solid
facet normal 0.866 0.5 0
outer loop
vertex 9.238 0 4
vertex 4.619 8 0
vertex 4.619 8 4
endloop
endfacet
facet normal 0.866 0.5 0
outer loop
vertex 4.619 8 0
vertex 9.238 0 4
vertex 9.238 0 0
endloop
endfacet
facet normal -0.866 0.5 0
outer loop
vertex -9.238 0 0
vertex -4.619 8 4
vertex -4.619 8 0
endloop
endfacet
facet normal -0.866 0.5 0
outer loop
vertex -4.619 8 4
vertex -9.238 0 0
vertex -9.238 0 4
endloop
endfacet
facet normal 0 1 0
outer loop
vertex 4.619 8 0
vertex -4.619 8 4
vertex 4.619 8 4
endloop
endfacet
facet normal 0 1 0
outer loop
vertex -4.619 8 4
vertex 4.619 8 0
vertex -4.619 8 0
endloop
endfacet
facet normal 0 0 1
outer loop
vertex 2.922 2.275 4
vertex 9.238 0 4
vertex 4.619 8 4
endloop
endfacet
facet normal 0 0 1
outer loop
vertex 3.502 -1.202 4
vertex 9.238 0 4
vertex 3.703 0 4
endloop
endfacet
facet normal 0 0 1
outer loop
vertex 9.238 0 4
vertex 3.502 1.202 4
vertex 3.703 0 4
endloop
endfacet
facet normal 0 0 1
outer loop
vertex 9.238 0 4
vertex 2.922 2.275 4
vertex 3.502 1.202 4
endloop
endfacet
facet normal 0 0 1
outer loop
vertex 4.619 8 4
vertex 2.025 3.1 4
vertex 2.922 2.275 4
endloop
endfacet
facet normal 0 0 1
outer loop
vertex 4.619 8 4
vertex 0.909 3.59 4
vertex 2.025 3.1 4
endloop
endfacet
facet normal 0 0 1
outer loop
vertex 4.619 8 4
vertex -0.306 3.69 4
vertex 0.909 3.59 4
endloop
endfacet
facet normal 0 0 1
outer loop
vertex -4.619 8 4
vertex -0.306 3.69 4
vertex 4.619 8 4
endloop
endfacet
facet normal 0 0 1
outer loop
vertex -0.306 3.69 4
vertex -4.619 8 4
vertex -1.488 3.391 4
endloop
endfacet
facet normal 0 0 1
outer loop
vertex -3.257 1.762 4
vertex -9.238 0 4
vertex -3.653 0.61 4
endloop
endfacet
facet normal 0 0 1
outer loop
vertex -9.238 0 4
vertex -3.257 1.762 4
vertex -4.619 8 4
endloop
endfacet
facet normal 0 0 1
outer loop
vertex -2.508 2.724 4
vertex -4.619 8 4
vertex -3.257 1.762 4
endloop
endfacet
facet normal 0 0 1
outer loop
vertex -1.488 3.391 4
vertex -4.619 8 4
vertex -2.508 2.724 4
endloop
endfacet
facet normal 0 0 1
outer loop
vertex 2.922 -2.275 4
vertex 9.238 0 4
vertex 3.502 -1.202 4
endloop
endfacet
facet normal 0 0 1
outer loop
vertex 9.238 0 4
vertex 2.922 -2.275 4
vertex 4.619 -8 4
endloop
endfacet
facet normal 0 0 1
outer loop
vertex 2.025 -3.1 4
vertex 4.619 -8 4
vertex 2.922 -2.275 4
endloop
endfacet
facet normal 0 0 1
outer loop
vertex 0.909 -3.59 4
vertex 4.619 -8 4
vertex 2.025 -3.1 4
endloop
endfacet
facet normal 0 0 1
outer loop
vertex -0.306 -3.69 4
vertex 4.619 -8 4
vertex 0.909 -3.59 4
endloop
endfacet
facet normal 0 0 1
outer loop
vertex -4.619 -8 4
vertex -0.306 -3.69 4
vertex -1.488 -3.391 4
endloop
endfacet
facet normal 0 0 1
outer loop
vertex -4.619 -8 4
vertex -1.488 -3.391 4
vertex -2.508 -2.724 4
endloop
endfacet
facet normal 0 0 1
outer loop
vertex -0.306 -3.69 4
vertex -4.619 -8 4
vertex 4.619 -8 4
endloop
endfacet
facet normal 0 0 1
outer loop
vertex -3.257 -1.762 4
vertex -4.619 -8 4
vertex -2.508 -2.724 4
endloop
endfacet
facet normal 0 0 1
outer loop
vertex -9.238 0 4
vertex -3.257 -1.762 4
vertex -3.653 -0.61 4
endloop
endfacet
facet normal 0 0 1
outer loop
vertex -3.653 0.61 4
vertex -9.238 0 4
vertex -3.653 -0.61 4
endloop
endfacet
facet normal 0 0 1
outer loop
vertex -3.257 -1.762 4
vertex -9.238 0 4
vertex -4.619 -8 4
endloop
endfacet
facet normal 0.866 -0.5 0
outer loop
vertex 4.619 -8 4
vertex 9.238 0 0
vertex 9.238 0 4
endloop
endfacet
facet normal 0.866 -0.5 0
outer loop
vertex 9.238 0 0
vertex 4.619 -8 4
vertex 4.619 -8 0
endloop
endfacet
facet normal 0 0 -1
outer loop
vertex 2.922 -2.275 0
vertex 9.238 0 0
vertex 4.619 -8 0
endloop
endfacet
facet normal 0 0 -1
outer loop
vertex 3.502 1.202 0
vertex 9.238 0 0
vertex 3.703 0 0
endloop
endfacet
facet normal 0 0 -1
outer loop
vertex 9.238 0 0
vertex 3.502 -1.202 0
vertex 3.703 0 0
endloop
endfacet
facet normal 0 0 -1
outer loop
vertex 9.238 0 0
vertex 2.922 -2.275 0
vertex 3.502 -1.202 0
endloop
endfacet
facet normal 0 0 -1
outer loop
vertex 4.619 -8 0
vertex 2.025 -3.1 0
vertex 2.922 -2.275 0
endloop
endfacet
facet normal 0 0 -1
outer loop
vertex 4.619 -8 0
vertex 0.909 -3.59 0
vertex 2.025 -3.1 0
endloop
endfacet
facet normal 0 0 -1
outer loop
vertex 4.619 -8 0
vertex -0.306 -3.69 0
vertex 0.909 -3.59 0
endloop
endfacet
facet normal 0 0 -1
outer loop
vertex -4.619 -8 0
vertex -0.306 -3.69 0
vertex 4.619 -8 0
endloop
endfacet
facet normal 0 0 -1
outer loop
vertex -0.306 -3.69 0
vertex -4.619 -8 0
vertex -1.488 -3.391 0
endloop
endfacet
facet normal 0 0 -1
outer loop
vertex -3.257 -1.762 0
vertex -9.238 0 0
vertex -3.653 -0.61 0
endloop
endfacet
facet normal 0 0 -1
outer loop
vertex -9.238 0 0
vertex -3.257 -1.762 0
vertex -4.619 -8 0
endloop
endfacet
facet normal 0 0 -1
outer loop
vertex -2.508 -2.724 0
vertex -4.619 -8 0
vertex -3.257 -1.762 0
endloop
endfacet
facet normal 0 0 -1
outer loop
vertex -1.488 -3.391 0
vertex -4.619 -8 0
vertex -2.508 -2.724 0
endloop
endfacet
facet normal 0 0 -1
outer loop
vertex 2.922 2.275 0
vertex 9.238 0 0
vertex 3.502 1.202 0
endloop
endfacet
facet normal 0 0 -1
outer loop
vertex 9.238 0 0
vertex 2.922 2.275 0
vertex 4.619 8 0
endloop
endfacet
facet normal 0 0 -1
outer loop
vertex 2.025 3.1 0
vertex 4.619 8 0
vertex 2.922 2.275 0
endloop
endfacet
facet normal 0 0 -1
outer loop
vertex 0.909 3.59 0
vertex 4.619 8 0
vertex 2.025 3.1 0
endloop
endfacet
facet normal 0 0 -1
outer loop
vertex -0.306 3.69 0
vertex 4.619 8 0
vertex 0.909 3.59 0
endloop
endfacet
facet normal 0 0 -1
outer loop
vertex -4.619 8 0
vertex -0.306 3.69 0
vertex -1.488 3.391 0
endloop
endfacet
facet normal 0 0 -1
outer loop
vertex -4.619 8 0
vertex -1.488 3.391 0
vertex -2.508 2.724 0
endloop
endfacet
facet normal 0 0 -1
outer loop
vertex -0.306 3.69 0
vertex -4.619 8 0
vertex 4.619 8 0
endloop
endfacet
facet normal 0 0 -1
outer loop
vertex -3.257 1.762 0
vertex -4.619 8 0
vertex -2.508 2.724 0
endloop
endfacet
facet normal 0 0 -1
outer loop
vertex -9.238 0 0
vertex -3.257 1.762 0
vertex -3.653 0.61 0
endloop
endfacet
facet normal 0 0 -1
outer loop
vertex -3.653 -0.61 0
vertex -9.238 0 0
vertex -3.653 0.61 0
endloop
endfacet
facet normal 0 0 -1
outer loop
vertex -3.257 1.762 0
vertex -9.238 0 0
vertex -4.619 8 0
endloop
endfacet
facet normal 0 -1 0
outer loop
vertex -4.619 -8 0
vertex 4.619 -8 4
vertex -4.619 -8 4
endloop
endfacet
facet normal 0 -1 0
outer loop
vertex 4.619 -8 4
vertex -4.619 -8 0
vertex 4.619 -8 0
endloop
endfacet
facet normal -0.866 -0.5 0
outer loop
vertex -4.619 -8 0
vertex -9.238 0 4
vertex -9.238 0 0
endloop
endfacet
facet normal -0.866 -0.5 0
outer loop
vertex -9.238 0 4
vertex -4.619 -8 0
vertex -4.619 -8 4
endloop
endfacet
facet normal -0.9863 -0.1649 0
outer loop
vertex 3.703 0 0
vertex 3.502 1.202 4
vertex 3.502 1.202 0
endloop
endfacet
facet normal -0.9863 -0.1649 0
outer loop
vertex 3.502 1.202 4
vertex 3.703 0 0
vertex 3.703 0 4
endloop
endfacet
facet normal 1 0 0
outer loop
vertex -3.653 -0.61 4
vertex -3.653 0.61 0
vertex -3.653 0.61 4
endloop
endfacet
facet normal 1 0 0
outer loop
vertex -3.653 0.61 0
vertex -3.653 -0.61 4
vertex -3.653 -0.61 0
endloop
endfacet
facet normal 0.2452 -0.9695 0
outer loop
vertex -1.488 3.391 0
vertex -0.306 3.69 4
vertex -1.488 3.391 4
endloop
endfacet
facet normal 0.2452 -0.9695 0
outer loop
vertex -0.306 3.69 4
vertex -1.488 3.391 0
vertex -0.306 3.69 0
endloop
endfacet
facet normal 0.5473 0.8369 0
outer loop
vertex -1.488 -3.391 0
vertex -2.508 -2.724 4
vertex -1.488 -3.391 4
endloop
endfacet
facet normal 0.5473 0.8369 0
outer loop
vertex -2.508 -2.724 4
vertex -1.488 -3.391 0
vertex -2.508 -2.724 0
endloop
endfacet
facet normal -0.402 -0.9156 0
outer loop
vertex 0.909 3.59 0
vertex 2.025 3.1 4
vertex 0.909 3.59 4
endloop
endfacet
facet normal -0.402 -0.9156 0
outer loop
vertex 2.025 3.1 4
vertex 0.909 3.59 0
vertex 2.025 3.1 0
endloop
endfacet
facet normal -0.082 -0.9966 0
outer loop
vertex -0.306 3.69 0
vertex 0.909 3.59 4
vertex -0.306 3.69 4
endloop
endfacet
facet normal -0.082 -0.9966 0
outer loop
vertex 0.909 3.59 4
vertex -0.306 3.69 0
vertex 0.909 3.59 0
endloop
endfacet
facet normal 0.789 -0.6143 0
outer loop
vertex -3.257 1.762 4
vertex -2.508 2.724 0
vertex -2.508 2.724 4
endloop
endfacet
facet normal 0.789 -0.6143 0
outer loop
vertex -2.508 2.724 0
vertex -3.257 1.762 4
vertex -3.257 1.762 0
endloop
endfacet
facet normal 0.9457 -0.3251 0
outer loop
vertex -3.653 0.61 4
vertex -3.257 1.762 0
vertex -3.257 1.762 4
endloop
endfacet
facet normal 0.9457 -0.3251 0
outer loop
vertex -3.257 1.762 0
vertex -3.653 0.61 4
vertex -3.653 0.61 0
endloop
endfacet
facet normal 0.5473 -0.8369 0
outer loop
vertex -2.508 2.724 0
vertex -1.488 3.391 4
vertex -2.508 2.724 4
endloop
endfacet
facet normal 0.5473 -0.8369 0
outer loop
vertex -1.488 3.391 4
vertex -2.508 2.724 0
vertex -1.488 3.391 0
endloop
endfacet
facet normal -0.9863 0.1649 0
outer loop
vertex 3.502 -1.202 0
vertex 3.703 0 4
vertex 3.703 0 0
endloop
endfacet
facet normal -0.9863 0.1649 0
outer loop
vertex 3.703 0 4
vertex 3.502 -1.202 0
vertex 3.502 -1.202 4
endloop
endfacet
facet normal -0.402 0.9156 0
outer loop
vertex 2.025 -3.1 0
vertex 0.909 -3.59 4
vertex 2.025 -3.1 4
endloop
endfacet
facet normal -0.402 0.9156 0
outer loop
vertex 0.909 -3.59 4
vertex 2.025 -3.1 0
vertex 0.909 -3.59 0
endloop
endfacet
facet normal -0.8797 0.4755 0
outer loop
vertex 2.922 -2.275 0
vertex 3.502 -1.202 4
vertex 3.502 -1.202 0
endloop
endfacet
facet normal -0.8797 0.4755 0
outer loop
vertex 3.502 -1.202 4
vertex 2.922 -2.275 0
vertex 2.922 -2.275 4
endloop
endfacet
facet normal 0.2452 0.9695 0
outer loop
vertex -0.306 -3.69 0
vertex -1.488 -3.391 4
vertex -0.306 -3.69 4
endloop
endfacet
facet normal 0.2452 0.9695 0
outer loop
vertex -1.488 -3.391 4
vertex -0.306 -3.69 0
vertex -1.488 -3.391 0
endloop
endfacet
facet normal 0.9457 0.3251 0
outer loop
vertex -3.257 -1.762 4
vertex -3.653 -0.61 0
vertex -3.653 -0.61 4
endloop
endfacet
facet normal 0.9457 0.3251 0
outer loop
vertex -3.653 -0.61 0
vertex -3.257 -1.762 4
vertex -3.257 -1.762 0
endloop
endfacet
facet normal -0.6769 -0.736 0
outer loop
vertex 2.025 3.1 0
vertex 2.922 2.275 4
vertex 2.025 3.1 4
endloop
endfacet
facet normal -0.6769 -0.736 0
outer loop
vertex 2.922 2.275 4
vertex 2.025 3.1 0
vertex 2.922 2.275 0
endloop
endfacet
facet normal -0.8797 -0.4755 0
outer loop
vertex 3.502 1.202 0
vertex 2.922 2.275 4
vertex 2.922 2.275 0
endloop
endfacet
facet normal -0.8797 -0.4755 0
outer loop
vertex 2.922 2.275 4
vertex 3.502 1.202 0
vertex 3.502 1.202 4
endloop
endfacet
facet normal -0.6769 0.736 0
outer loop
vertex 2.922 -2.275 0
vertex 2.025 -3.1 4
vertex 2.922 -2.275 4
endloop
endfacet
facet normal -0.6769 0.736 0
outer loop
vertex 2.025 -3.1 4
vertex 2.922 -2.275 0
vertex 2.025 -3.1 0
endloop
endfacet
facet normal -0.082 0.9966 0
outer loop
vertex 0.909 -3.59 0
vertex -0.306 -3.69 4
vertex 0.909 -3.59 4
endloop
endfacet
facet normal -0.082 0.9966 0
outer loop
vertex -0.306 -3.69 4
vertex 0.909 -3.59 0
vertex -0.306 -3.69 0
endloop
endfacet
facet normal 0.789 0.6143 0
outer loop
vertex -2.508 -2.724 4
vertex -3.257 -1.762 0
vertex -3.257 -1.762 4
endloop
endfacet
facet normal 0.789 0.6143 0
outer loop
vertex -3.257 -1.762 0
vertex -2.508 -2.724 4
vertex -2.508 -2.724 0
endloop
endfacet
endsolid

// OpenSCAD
height = 4;
hole_dia = 6.6;
outer_dia = 16;
epsilon = 0.01;

// from polyholes-revisited.scad
nozzle_dia=0.4;
layer_height=0.2;

function pi() = 3.141592;
function width(d,h) = h-(pi()*((h*h)-(d*d)))/(4*h);
function arc(r,t) = 0.5*(t+sqrt((t*t)+4*(r*r)));
function polyhole(r,n,t) = arc(r,t)/cos(180/n);

function sides(d,t) = ceil(180 / acos((d-t)/d));

module hole(d,h)
{
  n=sides(d,0.1);
  t=width(nozzle_dia,layer_height);
  pr=polyhole(d/2,n,t);
  echo(str("orig dia: ", d, ", num sides: ", n, ", new dia: ",pr*2));
  translate([0,0,-epsilon])cylinder(r=pr,h=h+2*epsilon,$fn=n);    
}

// nut
difference() {
    
	Num_Sides = 6;			// Hexagon = 6
	Nut_Flats = outer_dia; 	// Measure across the flats
	Flats_Rad = Nut_Flats/2;
	Nut_Rad = Flats_Rad / cos(180/Num_Sides);    
    
    // nut
    cylinder(h = height, r = Nut_Rad, $fn = Num_Sides);
    
    // hole
    //translate([0,0,-epsilon]) cylinder(h = height+2*epsilon, r = hole_dia/2, $fn = 20);
    hole(hole_dia, height);
}
